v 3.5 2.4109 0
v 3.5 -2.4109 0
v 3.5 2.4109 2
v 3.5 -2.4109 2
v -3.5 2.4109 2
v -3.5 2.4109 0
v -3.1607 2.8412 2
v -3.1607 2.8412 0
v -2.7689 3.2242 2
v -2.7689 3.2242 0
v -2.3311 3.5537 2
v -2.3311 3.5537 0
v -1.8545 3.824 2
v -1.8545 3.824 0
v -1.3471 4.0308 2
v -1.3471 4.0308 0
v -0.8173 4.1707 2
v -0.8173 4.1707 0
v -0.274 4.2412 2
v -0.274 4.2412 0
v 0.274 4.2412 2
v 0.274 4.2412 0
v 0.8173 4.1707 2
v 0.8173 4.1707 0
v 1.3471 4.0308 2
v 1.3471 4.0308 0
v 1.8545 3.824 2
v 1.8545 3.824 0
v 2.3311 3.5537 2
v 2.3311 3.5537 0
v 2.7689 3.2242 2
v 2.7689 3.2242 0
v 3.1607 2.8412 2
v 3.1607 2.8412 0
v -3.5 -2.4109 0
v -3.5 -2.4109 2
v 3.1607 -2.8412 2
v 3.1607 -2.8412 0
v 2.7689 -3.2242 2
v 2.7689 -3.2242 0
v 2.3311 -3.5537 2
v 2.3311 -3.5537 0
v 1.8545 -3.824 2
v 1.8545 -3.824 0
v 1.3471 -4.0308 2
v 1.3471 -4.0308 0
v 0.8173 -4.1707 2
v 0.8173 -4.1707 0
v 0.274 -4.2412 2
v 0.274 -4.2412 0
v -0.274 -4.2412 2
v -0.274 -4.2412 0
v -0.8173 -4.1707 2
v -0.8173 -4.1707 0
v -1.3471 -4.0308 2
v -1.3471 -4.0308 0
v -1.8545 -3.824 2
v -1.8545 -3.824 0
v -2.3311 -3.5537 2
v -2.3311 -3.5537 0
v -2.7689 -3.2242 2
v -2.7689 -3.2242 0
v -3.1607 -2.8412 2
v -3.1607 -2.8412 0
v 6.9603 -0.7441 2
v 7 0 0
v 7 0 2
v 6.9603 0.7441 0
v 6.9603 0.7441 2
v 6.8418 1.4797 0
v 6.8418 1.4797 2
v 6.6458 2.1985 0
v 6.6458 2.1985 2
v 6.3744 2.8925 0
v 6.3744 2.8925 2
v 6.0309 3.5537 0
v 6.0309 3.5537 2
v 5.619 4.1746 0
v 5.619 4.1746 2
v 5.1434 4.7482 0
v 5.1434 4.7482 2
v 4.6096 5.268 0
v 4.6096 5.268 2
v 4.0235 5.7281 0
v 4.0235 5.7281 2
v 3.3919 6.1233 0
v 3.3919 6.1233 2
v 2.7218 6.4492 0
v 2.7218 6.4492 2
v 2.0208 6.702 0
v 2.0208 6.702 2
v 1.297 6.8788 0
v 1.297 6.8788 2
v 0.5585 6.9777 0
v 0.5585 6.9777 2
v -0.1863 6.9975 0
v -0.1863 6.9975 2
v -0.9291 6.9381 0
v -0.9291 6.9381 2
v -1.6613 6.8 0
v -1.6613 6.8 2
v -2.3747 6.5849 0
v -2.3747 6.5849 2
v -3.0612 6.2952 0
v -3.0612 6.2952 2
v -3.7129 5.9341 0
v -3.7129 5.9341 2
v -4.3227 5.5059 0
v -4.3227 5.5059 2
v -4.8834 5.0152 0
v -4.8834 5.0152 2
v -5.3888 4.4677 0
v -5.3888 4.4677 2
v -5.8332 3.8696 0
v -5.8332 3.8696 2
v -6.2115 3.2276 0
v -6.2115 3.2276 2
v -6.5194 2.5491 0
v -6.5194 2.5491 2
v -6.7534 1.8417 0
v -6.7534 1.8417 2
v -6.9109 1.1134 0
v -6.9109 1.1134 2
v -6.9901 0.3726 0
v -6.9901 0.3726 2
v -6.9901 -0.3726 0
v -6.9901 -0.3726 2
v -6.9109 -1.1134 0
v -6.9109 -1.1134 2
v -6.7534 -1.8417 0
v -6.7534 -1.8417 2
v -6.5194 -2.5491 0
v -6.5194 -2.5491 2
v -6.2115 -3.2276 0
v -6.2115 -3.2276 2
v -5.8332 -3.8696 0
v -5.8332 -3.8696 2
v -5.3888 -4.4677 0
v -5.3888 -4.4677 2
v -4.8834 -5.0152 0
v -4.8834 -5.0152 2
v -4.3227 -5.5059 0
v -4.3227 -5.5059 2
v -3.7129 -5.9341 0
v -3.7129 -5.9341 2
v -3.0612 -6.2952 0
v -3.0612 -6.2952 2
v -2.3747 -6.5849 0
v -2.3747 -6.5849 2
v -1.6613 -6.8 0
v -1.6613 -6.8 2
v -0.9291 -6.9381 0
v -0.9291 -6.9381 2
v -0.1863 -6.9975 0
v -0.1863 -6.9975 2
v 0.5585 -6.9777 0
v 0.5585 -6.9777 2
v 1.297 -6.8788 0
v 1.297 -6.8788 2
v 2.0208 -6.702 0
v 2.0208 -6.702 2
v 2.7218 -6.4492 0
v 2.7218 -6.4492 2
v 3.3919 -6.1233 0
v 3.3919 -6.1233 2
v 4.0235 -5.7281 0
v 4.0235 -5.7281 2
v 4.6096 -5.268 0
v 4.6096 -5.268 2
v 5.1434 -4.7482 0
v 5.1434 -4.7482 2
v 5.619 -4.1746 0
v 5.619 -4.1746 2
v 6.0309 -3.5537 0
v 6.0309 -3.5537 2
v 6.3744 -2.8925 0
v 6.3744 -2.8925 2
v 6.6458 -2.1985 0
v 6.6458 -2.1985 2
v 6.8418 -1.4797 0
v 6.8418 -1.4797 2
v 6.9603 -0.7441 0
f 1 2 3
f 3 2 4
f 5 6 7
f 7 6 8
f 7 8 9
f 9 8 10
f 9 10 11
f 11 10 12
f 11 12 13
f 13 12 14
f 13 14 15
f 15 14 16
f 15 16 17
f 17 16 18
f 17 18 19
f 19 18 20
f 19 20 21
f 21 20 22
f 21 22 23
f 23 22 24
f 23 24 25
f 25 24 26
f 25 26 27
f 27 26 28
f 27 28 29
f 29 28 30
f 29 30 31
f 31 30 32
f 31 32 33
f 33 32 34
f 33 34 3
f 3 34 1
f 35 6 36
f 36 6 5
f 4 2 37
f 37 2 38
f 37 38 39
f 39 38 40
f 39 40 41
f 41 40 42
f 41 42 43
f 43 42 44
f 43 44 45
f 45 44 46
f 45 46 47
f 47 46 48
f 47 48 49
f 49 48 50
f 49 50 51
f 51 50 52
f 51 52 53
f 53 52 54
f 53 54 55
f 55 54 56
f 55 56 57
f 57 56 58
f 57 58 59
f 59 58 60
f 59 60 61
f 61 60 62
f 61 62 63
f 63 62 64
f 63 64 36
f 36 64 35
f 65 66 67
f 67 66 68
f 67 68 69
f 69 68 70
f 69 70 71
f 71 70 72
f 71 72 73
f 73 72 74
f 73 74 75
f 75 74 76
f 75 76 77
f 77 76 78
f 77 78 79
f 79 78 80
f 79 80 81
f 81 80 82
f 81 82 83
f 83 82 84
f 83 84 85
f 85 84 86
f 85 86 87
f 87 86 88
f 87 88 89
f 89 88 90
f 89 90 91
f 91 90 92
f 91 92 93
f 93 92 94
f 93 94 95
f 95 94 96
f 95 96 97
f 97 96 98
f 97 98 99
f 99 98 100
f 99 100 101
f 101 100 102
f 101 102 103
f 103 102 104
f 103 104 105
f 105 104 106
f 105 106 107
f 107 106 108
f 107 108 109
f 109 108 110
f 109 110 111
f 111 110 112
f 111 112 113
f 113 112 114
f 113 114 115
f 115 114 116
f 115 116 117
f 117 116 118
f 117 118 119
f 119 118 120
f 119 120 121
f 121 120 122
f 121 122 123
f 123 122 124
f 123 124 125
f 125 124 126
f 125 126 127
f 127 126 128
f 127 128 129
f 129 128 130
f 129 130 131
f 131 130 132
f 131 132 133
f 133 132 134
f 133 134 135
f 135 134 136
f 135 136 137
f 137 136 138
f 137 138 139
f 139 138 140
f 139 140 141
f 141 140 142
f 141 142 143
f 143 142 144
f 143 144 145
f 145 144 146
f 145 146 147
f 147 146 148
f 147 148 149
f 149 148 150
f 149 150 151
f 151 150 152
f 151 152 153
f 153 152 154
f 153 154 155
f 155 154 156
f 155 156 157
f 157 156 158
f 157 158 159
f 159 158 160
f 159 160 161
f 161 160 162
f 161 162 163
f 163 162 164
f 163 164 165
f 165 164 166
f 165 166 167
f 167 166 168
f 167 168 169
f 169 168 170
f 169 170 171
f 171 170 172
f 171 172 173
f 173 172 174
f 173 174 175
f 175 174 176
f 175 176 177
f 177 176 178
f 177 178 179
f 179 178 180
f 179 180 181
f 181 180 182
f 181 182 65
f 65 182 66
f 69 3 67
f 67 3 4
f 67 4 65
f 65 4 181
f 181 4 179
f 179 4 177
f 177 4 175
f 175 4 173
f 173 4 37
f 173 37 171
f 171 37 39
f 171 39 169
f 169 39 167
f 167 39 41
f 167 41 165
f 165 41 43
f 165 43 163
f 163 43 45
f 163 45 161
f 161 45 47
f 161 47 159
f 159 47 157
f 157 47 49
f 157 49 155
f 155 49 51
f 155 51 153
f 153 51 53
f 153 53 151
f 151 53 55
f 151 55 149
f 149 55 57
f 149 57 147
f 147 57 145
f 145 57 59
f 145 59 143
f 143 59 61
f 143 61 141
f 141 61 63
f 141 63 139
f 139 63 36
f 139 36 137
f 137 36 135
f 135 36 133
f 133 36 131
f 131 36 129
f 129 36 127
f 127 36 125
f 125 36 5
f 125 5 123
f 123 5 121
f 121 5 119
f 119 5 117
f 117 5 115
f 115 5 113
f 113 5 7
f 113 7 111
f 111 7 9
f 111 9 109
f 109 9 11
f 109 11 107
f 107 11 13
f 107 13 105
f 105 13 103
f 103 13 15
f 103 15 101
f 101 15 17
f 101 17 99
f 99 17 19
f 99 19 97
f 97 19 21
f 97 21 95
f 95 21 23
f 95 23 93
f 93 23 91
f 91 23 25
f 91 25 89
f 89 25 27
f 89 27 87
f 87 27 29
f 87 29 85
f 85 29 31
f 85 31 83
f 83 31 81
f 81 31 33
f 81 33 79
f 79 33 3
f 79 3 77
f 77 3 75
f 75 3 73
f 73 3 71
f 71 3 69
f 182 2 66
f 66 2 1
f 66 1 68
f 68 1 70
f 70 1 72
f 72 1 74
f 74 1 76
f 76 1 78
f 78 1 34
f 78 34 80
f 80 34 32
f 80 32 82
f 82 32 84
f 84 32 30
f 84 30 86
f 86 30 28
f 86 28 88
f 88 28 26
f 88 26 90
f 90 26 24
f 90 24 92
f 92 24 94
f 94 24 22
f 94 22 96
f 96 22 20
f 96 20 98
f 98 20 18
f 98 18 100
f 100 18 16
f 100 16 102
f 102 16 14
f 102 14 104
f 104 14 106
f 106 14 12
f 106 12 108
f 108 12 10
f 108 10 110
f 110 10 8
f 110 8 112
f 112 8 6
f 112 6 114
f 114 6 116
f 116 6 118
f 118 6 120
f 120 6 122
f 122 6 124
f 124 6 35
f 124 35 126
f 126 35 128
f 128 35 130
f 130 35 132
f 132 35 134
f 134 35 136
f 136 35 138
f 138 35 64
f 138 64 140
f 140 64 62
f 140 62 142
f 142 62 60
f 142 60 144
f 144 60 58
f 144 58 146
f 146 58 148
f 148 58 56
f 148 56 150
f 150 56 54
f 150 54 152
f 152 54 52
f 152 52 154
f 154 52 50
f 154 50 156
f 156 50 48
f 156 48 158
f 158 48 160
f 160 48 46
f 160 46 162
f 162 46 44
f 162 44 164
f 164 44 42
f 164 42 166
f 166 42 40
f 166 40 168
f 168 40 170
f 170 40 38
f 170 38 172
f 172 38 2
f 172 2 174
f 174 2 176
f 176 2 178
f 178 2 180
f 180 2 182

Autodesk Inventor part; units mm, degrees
ref_plane "YZ Plane" through (0, 0, 0) normal (1, 0, 0) x (0, 1, 0)
ref_plane "XZ Plane" through (0, 0, 0) normal (0, 1, 0) x (-1, 0, 0)
ref_plane "XY Plane" through (0, 0, 0) normal (0, 0, 1) x (1, 0, 0)
sketch "Эскиз1" plane through (0, 0, 0) normal (0, 0, 1) x (1, 0, 0)
  circle A0 centre (0, 0) radius 4.25
  circle A1 centre (0, 0) radius 7
  line L0 (-3.5, 0) -> (3.5, 0)
  line L1 (-3.5, 2.4109) -> (-3.5, -2.4109)
  line L2 (3.5, 2.4109) -> (3.5, -2.4109)
  dimension "d0" = 8.5
  dimension "d1" = 14
  dimension "d2" = 7
extrude "Выдавливание1" add sketch "Эскиз1" along normal blind 2 contours A0 L2 | L1 A0 | A1
properties part number "ANT_SPACER"
